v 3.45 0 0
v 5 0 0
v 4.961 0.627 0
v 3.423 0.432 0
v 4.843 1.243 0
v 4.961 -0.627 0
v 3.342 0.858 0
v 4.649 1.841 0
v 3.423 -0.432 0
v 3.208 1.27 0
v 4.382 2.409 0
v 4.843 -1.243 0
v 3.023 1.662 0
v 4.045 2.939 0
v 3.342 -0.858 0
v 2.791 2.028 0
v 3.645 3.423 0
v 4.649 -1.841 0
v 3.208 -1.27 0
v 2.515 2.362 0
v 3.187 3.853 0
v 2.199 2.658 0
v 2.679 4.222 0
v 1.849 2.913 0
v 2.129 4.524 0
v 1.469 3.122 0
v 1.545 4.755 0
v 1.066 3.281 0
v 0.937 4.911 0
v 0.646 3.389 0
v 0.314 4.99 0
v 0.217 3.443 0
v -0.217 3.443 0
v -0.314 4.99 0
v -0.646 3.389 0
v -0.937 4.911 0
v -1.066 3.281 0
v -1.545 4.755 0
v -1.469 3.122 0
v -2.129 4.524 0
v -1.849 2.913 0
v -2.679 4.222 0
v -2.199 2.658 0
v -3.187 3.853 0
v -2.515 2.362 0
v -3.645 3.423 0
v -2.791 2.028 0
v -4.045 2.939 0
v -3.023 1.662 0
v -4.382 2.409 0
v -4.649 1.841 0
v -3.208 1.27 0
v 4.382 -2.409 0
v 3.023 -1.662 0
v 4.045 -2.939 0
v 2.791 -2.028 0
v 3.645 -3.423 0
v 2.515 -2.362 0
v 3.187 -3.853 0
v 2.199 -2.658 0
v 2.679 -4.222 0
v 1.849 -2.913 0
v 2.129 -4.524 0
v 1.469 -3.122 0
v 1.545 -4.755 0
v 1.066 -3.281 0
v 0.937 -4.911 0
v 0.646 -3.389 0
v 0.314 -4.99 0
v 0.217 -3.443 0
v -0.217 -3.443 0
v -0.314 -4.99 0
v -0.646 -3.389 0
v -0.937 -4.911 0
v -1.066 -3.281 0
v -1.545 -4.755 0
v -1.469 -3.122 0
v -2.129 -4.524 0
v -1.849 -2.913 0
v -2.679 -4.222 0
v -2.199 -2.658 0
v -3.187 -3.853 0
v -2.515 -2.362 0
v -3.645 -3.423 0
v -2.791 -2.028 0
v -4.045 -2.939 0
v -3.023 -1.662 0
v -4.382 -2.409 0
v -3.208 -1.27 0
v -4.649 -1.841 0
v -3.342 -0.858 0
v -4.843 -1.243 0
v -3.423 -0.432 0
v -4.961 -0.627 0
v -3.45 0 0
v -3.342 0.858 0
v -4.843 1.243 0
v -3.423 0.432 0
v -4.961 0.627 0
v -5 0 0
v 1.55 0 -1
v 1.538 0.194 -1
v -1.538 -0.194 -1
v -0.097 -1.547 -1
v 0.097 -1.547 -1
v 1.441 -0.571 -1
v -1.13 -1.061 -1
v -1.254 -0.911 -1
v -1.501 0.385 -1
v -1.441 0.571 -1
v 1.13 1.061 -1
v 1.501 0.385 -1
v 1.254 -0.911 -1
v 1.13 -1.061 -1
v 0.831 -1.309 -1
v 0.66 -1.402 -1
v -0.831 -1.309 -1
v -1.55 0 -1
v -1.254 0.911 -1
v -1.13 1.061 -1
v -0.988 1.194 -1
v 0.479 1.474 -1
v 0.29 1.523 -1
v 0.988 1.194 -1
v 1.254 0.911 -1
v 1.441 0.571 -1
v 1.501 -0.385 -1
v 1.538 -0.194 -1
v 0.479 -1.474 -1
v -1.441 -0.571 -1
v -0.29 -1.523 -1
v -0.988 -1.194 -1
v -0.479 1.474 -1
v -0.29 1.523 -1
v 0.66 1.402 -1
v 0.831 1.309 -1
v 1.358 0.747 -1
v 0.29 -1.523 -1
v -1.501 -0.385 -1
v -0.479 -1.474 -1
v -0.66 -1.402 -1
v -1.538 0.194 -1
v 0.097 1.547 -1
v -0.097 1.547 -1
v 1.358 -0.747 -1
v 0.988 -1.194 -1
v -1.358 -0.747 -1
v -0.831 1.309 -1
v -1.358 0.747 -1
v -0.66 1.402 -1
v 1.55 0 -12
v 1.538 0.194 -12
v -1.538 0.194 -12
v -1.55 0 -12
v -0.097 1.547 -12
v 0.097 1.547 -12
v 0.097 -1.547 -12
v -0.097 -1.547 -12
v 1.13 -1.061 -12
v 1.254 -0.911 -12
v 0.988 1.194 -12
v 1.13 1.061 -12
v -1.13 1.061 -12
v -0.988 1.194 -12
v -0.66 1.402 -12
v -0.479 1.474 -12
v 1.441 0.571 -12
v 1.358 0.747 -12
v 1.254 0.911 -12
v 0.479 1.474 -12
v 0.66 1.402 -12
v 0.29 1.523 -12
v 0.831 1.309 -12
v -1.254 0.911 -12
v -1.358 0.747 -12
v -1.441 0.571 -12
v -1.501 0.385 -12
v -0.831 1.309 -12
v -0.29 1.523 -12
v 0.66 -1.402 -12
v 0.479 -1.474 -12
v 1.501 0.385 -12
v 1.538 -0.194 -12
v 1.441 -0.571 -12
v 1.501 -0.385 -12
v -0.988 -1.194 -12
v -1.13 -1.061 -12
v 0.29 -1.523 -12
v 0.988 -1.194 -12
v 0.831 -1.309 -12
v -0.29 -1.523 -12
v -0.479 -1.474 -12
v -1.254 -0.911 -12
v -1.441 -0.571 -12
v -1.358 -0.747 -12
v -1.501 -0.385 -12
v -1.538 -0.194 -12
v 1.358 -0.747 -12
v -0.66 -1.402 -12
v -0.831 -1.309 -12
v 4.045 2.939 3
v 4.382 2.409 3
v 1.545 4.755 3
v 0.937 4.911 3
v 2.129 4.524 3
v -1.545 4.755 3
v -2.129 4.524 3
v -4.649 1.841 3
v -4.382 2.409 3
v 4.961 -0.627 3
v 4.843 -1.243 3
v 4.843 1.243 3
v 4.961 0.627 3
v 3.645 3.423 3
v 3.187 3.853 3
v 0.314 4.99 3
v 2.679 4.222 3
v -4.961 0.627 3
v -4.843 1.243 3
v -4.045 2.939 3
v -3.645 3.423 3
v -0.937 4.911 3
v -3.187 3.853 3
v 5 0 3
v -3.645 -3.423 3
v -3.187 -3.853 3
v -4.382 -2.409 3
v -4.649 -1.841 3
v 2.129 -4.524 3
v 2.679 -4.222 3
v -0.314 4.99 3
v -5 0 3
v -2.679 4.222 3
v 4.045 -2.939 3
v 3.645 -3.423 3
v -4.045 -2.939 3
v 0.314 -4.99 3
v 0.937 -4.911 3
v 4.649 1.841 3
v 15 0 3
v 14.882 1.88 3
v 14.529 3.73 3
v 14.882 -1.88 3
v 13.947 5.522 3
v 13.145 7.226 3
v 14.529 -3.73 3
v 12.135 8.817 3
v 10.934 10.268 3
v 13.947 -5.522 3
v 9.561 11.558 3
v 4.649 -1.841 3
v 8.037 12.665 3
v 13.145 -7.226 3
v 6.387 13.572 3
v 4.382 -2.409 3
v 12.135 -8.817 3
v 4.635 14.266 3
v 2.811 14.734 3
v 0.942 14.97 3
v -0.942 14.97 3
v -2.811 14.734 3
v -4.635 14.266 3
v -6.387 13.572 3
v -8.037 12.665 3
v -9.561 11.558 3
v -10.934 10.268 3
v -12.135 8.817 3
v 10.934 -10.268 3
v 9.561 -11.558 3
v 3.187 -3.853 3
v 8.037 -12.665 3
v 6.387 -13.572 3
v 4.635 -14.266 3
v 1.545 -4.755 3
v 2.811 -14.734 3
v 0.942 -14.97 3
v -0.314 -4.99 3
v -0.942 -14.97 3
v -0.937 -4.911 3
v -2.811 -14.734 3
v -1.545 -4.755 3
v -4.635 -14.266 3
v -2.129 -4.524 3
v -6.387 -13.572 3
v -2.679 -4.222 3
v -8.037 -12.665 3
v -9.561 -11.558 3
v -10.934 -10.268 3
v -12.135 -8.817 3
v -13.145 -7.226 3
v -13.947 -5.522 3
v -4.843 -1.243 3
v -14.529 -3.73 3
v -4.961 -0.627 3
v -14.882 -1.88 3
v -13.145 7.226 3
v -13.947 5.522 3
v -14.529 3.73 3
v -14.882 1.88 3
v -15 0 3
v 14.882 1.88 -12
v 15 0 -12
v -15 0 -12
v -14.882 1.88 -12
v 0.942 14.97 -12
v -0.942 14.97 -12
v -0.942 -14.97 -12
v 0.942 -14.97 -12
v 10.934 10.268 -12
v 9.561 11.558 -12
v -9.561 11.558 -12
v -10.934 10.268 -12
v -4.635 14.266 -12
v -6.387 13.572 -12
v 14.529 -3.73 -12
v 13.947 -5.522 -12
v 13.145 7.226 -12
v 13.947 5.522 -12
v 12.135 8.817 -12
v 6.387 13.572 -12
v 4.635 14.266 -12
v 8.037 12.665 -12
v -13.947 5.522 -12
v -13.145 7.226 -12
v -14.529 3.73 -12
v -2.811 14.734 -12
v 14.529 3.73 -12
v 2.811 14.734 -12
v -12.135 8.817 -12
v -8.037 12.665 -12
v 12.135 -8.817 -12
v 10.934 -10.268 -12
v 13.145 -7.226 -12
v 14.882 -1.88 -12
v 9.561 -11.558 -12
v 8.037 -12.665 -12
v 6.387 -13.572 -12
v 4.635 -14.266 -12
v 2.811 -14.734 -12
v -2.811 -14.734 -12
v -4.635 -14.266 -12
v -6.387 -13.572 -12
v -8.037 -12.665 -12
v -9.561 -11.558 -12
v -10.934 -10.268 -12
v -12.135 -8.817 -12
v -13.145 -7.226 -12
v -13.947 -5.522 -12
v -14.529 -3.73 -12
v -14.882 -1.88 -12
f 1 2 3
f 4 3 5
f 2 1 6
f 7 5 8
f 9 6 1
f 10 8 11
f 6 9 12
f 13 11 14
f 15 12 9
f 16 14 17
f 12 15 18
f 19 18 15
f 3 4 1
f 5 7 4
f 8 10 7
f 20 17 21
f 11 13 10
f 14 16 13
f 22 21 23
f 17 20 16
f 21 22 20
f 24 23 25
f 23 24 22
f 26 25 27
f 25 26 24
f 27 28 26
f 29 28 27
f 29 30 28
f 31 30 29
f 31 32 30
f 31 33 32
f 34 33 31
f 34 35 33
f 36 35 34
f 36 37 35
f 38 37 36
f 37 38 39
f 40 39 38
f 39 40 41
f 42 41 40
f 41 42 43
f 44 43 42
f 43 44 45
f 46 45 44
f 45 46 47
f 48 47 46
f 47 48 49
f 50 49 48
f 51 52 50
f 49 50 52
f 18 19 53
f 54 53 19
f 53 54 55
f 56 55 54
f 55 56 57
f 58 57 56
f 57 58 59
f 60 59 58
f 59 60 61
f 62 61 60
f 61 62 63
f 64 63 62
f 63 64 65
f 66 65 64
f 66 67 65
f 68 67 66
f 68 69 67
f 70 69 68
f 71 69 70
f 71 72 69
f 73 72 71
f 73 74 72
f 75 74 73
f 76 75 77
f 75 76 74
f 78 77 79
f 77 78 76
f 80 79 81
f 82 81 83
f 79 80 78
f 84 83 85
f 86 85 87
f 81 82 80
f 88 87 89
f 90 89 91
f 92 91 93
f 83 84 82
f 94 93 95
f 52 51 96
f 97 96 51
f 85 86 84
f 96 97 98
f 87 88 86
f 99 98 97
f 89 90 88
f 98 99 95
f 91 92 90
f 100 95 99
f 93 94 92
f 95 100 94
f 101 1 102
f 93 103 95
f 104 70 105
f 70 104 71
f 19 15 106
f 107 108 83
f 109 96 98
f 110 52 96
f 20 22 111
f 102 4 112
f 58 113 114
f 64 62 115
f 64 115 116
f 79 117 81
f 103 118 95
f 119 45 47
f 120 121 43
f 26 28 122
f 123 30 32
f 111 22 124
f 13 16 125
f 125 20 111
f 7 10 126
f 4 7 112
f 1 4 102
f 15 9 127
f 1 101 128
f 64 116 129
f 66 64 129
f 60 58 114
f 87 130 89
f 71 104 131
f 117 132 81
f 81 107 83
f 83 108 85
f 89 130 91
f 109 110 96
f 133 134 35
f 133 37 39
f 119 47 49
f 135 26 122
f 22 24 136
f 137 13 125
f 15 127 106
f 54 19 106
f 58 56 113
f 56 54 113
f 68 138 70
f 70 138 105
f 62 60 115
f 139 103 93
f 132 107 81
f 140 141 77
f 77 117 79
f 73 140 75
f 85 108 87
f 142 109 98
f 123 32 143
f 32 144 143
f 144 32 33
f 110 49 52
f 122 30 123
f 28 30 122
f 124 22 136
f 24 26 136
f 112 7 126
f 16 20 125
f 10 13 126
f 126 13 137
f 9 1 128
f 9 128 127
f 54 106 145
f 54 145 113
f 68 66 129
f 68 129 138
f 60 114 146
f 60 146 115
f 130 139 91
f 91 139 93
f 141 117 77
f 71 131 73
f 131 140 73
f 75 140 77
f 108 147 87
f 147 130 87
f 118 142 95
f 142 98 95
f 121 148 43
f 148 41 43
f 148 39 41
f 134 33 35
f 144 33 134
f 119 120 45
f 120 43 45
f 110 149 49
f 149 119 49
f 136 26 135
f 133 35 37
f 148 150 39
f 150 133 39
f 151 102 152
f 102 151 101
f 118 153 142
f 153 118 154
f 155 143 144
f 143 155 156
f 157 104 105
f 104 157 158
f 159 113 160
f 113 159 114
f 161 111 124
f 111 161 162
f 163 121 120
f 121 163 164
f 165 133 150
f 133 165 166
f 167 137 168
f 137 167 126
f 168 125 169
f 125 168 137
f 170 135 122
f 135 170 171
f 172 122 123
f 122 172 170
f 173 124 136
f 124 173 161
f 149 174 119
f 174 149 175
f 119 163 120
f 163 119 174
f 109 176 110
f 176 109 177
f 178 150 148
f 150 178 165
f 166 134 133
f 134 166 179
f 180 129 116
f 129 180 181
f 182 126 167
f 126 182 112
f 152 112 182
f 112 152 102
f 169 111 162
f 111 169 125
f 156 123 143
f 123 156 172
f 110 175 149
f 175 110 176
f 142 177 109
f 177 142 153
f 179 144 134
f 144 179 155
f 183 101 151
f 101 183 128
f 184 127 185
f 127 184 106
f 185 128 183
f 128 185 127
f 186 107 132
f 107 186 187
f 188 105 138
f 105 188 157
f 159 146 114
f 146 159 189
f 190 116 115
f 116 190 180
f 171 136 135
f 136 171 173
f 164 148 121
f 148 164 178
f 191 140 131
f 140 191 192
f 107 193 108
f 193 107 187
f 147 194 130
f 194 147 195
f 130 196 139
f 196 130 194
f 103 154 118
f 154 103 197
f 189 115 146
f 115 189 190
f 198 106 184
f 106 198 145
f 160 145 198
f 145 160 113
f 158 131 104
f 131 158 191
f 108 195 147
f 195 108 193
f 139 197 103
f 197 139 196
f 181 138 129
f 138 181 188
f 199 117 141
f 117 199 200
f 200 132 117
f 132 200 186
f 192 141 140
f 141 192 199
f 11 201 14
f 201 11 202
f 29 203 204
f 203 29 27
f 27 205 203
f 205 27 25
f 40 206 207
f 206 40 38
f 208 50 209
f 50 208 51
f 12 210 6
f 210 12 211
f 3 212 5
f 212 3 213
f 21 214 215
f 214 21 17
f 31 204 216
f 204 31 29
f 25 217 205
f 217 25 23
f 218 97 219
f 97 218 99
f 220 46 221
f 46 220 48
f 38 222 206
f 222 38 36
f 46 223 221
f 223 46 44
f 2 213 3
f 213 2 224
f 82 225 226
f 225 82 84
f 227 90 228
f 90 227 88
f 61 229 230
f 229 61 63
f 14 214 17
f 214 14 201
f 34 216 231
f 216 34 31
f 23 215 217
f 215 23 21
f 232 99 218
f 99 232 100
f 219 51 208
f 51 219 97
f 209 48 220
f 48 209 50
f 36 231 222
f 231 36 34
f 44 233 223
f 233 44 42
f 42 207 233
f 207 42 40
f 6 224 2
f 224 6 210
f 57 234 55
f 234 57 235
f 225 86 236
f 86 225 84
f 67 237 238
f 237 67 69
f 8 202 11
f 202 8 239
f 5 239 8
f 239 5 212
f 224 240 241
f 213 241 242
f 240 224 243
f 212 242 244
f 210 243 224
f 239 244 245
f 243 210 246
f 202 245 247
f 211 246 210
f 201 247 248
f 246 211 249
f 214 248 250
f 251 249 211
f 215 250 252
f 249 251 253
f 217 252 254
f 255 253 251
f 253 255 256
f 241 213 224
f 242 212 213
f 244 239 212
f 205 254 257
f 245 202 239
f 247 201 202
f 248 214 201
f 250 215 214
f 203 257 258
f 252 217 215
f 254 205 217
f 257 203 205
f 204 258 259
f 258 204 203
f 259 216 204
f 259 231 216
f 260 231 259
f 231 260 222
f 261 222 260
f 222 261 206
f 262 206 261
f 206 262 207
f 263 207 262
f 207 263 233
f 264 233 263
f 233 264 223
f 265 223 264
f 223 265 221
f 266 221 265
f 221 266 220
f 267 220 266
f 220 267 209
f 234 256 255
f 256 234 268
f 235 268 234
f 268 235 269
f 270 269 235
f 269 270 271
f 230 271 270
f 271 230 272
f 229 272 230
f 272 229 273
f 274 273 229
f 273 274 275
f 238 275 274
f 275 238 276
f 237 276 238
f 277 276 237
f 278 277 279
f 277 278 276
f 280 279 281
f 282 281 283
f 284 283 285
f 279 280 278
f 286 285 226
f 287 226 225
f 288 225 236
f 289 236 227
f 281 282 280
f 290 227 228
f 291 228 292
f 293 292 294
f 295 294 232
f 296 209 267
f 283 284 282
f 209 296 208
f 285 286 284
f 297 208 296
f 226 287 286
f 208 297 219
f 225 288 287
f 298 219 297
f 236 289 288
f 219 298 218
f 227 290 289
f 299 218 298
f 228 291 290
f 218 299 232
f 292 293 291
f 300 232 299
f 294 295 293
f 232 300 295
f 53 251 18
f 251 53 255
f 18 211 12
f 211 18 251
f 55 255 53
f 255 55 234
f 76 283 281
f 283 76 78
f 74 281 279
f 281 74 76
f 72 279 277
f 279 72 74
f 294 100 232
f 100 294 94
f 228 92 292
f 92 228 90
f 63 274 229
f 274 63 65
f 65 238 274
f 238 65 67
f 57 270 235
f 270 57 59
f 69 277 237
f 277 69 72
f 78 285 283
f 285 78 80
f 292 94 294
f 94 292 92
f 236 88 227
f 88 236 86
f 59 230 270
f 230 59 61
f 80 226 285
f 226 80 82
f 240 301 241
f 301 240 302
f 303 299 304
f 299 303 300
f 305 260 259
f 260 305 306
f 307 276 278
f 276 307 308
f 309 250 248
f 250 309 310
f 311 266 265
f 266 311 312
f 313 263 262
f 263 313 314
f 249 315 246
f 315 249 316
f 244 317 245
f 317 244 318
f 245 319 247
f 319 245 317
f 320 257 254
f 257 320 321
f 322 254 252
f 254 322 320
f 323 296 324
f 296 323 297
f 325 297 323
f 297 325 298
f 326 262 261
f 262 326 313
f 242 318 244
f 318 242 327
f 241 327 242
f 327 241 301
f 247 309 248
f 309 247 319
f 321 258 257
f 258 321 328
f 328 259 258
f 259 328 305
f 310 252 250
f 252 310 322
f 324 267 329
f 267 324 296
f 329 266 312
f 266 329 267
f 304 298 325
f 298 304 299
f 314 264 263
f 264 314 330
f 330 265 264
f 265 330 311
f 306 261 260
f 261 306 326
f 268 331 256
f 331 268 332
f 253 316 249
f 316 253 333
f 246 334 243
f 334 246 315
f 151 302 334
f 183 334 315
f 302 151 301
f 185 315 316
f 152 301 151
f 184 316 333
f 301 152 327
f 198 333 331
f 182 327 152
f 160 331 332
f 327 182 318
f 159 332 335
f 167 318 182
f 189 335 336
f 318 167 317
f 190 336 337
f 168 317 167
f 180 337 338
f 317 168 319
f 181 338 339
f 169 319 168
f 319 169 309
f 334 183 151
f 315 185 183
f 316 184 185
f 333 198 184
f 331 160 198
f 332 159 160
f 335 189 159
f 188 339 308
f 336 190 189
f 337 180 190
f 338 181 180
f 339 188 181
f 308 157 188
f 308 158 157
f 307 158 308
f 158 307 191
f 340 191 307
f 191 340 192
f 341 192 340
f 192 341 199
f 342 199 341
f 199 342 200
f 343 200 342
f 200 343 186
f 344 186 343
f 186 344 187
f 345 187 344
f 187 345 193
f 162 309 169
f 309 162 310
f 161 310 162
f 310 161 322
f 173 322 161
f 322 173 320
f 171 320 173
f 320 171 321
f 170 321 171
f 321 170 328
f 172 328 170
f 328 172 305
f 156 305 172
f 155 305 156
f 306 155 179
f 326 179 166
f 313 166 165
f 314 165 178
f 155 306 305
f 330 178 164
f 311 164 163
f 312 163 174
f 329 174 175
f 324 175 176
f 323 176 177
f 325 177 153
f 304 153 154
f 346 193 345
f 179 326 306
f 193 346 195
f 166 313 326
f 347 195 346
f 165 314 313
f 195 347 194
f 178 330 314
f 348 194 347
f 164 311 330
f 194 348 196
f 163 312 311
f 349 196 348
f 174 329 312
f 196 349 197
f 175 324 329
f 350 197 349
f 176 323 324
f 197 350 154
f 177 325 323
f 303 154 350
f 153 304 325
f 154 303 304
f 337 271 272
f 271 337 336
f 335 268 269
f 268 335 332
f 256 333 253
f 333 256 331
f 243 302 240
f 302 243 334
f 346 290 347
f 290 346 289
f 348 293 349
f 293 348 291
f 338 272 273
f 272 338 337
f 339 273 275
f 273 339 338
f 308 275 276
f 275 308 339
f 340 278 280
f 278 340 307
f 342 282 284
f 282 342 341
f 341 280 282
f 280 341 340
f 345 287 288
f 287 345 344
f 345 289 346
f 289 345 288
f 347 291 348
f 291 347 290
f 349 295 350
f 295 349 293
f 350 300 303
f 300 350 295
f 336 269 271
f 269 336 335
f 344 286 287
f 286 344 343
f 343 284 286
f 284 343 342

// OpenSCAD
$fn = 50;

difference() {
	union() {
		translate(v = [0, 0, -12.0]) {
			cylinder(h = 15, r = 15.0);
		}
	}
	union() {
		translate(v = [0, 0, 0]) {
			rotate(a = [0, 0, 0]) {
				difference() {
					union() {
						translate(v = [0, 0, -15.0]) {
							cylinder(h = 15, r = 1.25);
						}
						translate(v = [0, 0, -1.0]) {
							cylinder(h = 1.0, r1 = 1.55, r2 = 3.45);
						}
						translate(v = [0, 0, -15.0]) {
							cylinder(h = 15, r = 1.55);
						}
						translate(v = [0, 0, -15.0]) {
							cylinder(h = 15, r = 1.25);
						}
					}
					union();
				}
			}
		}
		#cylinder(h = 3, r = 5.0);
	}
}
